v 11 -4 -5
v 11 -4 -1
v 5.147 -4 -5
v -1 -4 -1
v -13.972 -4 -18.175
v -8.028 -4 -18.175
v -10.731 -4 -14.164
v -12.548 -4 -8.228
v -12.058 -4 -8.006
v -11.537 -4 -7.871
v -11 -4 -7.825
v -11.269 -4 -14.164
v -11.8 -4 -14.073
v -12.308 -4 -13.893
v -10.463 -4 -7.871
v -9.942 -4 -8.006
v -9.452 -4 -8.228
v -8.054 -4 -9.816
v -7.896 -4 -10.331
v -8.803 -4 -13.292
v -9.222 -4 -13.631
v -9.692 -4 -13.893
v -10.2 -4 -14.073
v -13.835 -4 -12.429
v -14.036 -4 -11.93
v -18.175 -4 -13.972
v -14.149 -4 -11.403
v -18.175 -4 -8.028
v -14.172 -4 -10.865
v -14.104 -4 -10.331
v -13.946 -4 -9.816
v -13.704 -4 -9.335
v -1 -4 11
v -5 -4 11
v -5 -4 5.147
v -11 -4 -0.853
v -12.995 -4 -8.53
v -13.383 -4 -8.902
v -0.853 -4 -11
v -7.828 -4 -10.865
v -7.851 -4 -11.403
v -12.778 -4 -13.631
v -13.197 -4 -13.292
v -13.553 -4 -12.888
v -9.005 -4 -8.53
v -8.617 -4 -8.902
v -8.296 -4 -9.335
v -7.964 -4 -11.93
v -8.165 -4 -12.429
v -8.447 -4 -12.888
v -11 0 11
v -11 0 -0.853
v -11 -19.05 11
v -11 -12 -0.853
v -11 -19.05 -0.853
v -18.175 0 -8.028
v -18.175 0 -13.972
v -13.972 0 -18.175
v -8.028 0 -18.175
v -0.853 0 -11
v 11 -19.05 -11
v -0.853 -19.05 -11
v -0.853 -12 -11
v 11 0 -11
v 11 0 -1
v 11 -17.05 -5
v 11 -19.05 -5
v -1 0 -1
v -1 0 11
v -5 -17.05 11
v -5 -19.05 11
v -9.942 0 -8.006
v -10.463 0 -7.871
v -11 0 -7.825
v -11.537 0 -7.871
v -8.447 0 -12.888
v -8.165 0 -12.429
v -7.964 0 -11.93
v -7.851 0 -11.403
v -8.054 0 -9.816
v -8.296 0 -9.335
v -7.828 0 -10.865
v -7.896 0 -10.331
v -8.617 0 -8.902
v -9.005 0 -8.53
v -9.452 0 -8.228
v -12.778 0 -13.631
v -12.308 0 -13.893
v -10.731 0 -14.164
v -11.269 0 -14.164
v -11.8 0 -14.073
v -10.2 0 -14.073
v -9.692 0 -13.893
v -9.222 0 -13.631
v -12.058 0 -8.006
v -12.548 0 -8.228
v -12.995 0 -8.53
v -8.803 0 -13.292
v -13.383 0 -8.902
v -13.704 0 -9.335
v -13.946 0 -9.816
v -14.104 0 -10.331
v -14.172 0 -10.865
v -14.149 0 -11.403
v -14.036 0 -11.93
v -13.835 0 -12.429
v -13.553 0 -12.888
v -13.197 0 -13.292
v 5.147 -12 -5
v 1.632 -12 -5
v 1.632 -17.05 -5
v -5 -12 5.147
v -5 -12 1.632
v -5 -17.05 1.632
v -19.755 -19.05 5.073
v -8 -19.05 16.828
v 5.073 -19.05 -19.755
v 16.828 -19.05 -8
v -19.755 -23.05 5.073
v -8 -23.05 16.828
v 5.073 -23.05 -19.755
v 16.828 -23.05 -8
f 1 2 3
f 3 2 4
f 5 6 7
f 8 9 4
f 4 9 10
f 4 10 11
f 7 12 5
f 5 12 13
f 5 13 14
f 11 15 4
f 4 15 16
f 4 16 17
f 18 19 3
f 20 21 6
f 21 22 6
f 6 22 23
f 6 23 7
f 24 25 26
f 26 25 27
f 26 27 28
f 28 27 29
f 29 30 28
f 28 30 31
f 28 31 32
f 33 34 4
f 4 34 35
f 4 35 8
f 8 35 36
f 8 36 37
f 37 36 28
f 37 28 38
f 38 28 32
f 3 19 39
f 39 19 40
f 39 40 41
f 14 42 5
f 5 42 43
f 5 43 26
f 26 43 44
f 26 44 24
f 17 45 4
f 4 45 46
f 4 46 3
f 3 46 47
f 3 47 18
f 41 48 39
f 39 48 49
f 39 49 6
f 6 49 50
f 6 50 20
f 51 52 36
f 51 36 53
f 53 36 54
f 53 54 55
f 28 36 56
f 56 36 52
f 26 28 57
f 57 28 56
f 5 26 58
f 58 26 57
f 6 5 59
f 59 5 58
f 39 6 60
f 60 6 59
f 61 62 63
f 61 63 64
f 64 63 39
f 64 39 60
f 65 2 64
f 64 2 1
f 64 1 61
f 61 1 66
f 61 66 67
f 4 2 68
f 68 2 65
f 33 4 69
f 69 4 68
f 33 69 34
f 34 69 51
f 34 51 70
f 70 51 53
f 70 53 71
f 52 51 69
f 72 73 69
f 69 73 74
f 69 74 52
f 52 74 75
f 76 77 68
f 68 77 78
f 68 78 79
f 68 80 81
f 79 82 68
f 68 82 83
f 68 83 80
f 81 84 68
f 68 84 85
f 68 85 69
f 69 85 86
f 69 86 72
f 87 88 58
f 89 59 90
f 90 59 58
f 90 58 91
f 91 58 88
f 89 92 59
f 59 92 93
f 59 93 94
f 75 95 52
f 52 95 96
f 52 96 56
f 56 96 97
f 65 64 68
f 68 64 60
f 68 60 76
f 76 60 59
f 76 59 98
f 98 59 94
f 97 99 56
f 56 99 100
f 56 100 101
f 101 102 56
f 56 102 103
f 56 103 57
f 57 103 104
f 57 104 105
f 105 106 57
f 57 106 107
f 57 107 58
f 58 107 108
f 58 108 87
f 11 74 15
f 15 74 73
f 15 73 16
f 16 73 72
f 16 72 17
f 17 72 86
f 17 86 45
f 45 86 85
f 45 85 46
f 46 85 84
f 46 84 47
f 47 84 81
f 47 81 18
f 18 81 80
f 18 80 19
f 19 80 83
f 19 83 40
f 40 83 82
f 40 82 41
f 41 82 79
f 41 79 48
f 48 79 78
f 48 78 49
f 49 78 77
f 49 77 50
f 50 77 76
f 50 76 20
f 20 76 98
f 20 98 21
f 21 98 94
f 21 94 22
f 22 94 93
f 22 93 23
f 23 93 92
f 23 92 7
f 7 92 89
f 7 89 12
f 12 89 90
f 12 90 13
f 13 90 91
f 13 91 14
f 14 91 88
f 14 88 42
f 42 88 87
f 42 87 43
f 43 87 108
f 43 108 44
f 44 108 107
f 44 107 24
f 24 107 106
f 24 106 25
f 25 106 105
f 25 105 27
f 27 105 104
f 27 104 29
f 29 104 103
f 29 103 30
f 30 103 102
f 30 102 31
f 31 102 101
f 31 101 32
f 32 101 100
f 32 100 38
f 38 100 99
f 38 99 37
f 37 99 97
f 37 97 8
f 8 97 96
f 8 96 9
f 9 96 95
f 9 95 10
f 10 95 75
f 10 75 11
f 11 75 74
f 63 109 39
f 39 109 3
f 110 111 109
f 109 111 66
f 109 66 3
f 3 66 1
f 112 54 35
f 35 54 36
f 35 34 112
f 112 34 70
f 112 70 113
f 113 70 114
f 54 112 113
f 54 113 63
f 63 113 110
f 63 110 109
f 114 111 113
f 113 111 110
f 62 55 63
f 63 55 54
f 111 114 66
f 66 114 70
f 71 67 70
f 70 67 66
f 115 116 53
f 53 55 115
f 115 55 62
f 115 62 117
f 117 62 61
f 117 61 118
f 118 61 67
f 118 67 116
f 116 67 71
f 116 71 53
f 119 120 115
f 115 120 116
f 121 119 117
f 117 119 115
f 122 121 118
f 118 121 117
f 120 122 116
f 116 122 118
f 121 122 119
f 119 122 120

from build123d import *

# Parameters (mm, degrees)
SKETCH1_R           = 3.175
BOSS_EXTRUDE1_DEPTH = 4
BOSS_EXTRUDE2_DEPTH = 8
BOSS_EXTRUDE3_DEPTH = 5.05
BOSS_EXTRUDE4_DEPTH = 2
BOSS_EXTRUDE5_DEPTH = 4


with BuildPart() as part:
    # Sketch1 → Boss-Extrude1 (new body)
    with BuildSketch(Plane(origin=(0, 0, 0), x_dir=(1, 0, 0), z_dir=(0, 1, 0))):
        Polygon((-11, -11), (-1, -11), (-1, 1), (11, 1), (11, 11), (-0.85301769, 11), (-8.02801769, 18.175), (-13.97198231, 18.175), (-18.175, 13.97198231), (-18.175, 8.02801769), (-11, 0.85301769), align=None)
        with Locations(Location((-11, 11, 0), (0, 0, 270))):
            Circle(SKETCH1_R, mode=Mode.SUBTRACT)
    extrude(amount=-BOSS_EXTRUDE1_DEPTH)

    # Sketch2 → Boss-Extrude2 (add)
    with BuildSketch(Plane.XZ.offset(4)):
        Polygon((-0.85301769, -11), (11, -11), (11, -5), (5.14698231, -5), align=None)
        Polygon((-11, -0.85301769), (-11, 11), (-5, 11), (-5, 5.14698231), align=None)
    extrude(amount=BOSS_EXTRUDE2_DEPTH)

    # Sketch3 → Boss-Extrude3 (add)
    with BuildSketch(Plane.XZ.offset(12)):
        Polygon((-0.85301769, -11), (11, -11), (11, -5), (5.14698231, -5), (1.632263684, -5), (-5, 1.632263684), (-5, 5.14698231), (-5, 11), (-11, 11), (-11, -0.85301769), align=None)
    extrude(amount=BOSS_EXTRUDE3_DEPTH)

    # Sketch4 → Boss-Extrude4 (add)
    with BuildSketch(Plane.XZ.offset(17.05)):
        Polygon((-5, 11), (-11, 11), (-11, -0.85301769), (-0.85301769, -11), (11, -11), (11, -5), align=None)
    extrude(amount=BOSS_EXTRUDE4_DEPTH)

    # Sketch5 → Boss-Extrude5 (add)
    with BuildSketch(Plane.XZ.offset(19.05)):
        Polygon((-19.75493597, 5.073491155), (5.073491155, -19.75493597), (16.828427125, -8), (-8, 16.828427125), align=None)
    extrude(amount=BOSS_EXTRUDE5_DEPTH)


solid = part.part
